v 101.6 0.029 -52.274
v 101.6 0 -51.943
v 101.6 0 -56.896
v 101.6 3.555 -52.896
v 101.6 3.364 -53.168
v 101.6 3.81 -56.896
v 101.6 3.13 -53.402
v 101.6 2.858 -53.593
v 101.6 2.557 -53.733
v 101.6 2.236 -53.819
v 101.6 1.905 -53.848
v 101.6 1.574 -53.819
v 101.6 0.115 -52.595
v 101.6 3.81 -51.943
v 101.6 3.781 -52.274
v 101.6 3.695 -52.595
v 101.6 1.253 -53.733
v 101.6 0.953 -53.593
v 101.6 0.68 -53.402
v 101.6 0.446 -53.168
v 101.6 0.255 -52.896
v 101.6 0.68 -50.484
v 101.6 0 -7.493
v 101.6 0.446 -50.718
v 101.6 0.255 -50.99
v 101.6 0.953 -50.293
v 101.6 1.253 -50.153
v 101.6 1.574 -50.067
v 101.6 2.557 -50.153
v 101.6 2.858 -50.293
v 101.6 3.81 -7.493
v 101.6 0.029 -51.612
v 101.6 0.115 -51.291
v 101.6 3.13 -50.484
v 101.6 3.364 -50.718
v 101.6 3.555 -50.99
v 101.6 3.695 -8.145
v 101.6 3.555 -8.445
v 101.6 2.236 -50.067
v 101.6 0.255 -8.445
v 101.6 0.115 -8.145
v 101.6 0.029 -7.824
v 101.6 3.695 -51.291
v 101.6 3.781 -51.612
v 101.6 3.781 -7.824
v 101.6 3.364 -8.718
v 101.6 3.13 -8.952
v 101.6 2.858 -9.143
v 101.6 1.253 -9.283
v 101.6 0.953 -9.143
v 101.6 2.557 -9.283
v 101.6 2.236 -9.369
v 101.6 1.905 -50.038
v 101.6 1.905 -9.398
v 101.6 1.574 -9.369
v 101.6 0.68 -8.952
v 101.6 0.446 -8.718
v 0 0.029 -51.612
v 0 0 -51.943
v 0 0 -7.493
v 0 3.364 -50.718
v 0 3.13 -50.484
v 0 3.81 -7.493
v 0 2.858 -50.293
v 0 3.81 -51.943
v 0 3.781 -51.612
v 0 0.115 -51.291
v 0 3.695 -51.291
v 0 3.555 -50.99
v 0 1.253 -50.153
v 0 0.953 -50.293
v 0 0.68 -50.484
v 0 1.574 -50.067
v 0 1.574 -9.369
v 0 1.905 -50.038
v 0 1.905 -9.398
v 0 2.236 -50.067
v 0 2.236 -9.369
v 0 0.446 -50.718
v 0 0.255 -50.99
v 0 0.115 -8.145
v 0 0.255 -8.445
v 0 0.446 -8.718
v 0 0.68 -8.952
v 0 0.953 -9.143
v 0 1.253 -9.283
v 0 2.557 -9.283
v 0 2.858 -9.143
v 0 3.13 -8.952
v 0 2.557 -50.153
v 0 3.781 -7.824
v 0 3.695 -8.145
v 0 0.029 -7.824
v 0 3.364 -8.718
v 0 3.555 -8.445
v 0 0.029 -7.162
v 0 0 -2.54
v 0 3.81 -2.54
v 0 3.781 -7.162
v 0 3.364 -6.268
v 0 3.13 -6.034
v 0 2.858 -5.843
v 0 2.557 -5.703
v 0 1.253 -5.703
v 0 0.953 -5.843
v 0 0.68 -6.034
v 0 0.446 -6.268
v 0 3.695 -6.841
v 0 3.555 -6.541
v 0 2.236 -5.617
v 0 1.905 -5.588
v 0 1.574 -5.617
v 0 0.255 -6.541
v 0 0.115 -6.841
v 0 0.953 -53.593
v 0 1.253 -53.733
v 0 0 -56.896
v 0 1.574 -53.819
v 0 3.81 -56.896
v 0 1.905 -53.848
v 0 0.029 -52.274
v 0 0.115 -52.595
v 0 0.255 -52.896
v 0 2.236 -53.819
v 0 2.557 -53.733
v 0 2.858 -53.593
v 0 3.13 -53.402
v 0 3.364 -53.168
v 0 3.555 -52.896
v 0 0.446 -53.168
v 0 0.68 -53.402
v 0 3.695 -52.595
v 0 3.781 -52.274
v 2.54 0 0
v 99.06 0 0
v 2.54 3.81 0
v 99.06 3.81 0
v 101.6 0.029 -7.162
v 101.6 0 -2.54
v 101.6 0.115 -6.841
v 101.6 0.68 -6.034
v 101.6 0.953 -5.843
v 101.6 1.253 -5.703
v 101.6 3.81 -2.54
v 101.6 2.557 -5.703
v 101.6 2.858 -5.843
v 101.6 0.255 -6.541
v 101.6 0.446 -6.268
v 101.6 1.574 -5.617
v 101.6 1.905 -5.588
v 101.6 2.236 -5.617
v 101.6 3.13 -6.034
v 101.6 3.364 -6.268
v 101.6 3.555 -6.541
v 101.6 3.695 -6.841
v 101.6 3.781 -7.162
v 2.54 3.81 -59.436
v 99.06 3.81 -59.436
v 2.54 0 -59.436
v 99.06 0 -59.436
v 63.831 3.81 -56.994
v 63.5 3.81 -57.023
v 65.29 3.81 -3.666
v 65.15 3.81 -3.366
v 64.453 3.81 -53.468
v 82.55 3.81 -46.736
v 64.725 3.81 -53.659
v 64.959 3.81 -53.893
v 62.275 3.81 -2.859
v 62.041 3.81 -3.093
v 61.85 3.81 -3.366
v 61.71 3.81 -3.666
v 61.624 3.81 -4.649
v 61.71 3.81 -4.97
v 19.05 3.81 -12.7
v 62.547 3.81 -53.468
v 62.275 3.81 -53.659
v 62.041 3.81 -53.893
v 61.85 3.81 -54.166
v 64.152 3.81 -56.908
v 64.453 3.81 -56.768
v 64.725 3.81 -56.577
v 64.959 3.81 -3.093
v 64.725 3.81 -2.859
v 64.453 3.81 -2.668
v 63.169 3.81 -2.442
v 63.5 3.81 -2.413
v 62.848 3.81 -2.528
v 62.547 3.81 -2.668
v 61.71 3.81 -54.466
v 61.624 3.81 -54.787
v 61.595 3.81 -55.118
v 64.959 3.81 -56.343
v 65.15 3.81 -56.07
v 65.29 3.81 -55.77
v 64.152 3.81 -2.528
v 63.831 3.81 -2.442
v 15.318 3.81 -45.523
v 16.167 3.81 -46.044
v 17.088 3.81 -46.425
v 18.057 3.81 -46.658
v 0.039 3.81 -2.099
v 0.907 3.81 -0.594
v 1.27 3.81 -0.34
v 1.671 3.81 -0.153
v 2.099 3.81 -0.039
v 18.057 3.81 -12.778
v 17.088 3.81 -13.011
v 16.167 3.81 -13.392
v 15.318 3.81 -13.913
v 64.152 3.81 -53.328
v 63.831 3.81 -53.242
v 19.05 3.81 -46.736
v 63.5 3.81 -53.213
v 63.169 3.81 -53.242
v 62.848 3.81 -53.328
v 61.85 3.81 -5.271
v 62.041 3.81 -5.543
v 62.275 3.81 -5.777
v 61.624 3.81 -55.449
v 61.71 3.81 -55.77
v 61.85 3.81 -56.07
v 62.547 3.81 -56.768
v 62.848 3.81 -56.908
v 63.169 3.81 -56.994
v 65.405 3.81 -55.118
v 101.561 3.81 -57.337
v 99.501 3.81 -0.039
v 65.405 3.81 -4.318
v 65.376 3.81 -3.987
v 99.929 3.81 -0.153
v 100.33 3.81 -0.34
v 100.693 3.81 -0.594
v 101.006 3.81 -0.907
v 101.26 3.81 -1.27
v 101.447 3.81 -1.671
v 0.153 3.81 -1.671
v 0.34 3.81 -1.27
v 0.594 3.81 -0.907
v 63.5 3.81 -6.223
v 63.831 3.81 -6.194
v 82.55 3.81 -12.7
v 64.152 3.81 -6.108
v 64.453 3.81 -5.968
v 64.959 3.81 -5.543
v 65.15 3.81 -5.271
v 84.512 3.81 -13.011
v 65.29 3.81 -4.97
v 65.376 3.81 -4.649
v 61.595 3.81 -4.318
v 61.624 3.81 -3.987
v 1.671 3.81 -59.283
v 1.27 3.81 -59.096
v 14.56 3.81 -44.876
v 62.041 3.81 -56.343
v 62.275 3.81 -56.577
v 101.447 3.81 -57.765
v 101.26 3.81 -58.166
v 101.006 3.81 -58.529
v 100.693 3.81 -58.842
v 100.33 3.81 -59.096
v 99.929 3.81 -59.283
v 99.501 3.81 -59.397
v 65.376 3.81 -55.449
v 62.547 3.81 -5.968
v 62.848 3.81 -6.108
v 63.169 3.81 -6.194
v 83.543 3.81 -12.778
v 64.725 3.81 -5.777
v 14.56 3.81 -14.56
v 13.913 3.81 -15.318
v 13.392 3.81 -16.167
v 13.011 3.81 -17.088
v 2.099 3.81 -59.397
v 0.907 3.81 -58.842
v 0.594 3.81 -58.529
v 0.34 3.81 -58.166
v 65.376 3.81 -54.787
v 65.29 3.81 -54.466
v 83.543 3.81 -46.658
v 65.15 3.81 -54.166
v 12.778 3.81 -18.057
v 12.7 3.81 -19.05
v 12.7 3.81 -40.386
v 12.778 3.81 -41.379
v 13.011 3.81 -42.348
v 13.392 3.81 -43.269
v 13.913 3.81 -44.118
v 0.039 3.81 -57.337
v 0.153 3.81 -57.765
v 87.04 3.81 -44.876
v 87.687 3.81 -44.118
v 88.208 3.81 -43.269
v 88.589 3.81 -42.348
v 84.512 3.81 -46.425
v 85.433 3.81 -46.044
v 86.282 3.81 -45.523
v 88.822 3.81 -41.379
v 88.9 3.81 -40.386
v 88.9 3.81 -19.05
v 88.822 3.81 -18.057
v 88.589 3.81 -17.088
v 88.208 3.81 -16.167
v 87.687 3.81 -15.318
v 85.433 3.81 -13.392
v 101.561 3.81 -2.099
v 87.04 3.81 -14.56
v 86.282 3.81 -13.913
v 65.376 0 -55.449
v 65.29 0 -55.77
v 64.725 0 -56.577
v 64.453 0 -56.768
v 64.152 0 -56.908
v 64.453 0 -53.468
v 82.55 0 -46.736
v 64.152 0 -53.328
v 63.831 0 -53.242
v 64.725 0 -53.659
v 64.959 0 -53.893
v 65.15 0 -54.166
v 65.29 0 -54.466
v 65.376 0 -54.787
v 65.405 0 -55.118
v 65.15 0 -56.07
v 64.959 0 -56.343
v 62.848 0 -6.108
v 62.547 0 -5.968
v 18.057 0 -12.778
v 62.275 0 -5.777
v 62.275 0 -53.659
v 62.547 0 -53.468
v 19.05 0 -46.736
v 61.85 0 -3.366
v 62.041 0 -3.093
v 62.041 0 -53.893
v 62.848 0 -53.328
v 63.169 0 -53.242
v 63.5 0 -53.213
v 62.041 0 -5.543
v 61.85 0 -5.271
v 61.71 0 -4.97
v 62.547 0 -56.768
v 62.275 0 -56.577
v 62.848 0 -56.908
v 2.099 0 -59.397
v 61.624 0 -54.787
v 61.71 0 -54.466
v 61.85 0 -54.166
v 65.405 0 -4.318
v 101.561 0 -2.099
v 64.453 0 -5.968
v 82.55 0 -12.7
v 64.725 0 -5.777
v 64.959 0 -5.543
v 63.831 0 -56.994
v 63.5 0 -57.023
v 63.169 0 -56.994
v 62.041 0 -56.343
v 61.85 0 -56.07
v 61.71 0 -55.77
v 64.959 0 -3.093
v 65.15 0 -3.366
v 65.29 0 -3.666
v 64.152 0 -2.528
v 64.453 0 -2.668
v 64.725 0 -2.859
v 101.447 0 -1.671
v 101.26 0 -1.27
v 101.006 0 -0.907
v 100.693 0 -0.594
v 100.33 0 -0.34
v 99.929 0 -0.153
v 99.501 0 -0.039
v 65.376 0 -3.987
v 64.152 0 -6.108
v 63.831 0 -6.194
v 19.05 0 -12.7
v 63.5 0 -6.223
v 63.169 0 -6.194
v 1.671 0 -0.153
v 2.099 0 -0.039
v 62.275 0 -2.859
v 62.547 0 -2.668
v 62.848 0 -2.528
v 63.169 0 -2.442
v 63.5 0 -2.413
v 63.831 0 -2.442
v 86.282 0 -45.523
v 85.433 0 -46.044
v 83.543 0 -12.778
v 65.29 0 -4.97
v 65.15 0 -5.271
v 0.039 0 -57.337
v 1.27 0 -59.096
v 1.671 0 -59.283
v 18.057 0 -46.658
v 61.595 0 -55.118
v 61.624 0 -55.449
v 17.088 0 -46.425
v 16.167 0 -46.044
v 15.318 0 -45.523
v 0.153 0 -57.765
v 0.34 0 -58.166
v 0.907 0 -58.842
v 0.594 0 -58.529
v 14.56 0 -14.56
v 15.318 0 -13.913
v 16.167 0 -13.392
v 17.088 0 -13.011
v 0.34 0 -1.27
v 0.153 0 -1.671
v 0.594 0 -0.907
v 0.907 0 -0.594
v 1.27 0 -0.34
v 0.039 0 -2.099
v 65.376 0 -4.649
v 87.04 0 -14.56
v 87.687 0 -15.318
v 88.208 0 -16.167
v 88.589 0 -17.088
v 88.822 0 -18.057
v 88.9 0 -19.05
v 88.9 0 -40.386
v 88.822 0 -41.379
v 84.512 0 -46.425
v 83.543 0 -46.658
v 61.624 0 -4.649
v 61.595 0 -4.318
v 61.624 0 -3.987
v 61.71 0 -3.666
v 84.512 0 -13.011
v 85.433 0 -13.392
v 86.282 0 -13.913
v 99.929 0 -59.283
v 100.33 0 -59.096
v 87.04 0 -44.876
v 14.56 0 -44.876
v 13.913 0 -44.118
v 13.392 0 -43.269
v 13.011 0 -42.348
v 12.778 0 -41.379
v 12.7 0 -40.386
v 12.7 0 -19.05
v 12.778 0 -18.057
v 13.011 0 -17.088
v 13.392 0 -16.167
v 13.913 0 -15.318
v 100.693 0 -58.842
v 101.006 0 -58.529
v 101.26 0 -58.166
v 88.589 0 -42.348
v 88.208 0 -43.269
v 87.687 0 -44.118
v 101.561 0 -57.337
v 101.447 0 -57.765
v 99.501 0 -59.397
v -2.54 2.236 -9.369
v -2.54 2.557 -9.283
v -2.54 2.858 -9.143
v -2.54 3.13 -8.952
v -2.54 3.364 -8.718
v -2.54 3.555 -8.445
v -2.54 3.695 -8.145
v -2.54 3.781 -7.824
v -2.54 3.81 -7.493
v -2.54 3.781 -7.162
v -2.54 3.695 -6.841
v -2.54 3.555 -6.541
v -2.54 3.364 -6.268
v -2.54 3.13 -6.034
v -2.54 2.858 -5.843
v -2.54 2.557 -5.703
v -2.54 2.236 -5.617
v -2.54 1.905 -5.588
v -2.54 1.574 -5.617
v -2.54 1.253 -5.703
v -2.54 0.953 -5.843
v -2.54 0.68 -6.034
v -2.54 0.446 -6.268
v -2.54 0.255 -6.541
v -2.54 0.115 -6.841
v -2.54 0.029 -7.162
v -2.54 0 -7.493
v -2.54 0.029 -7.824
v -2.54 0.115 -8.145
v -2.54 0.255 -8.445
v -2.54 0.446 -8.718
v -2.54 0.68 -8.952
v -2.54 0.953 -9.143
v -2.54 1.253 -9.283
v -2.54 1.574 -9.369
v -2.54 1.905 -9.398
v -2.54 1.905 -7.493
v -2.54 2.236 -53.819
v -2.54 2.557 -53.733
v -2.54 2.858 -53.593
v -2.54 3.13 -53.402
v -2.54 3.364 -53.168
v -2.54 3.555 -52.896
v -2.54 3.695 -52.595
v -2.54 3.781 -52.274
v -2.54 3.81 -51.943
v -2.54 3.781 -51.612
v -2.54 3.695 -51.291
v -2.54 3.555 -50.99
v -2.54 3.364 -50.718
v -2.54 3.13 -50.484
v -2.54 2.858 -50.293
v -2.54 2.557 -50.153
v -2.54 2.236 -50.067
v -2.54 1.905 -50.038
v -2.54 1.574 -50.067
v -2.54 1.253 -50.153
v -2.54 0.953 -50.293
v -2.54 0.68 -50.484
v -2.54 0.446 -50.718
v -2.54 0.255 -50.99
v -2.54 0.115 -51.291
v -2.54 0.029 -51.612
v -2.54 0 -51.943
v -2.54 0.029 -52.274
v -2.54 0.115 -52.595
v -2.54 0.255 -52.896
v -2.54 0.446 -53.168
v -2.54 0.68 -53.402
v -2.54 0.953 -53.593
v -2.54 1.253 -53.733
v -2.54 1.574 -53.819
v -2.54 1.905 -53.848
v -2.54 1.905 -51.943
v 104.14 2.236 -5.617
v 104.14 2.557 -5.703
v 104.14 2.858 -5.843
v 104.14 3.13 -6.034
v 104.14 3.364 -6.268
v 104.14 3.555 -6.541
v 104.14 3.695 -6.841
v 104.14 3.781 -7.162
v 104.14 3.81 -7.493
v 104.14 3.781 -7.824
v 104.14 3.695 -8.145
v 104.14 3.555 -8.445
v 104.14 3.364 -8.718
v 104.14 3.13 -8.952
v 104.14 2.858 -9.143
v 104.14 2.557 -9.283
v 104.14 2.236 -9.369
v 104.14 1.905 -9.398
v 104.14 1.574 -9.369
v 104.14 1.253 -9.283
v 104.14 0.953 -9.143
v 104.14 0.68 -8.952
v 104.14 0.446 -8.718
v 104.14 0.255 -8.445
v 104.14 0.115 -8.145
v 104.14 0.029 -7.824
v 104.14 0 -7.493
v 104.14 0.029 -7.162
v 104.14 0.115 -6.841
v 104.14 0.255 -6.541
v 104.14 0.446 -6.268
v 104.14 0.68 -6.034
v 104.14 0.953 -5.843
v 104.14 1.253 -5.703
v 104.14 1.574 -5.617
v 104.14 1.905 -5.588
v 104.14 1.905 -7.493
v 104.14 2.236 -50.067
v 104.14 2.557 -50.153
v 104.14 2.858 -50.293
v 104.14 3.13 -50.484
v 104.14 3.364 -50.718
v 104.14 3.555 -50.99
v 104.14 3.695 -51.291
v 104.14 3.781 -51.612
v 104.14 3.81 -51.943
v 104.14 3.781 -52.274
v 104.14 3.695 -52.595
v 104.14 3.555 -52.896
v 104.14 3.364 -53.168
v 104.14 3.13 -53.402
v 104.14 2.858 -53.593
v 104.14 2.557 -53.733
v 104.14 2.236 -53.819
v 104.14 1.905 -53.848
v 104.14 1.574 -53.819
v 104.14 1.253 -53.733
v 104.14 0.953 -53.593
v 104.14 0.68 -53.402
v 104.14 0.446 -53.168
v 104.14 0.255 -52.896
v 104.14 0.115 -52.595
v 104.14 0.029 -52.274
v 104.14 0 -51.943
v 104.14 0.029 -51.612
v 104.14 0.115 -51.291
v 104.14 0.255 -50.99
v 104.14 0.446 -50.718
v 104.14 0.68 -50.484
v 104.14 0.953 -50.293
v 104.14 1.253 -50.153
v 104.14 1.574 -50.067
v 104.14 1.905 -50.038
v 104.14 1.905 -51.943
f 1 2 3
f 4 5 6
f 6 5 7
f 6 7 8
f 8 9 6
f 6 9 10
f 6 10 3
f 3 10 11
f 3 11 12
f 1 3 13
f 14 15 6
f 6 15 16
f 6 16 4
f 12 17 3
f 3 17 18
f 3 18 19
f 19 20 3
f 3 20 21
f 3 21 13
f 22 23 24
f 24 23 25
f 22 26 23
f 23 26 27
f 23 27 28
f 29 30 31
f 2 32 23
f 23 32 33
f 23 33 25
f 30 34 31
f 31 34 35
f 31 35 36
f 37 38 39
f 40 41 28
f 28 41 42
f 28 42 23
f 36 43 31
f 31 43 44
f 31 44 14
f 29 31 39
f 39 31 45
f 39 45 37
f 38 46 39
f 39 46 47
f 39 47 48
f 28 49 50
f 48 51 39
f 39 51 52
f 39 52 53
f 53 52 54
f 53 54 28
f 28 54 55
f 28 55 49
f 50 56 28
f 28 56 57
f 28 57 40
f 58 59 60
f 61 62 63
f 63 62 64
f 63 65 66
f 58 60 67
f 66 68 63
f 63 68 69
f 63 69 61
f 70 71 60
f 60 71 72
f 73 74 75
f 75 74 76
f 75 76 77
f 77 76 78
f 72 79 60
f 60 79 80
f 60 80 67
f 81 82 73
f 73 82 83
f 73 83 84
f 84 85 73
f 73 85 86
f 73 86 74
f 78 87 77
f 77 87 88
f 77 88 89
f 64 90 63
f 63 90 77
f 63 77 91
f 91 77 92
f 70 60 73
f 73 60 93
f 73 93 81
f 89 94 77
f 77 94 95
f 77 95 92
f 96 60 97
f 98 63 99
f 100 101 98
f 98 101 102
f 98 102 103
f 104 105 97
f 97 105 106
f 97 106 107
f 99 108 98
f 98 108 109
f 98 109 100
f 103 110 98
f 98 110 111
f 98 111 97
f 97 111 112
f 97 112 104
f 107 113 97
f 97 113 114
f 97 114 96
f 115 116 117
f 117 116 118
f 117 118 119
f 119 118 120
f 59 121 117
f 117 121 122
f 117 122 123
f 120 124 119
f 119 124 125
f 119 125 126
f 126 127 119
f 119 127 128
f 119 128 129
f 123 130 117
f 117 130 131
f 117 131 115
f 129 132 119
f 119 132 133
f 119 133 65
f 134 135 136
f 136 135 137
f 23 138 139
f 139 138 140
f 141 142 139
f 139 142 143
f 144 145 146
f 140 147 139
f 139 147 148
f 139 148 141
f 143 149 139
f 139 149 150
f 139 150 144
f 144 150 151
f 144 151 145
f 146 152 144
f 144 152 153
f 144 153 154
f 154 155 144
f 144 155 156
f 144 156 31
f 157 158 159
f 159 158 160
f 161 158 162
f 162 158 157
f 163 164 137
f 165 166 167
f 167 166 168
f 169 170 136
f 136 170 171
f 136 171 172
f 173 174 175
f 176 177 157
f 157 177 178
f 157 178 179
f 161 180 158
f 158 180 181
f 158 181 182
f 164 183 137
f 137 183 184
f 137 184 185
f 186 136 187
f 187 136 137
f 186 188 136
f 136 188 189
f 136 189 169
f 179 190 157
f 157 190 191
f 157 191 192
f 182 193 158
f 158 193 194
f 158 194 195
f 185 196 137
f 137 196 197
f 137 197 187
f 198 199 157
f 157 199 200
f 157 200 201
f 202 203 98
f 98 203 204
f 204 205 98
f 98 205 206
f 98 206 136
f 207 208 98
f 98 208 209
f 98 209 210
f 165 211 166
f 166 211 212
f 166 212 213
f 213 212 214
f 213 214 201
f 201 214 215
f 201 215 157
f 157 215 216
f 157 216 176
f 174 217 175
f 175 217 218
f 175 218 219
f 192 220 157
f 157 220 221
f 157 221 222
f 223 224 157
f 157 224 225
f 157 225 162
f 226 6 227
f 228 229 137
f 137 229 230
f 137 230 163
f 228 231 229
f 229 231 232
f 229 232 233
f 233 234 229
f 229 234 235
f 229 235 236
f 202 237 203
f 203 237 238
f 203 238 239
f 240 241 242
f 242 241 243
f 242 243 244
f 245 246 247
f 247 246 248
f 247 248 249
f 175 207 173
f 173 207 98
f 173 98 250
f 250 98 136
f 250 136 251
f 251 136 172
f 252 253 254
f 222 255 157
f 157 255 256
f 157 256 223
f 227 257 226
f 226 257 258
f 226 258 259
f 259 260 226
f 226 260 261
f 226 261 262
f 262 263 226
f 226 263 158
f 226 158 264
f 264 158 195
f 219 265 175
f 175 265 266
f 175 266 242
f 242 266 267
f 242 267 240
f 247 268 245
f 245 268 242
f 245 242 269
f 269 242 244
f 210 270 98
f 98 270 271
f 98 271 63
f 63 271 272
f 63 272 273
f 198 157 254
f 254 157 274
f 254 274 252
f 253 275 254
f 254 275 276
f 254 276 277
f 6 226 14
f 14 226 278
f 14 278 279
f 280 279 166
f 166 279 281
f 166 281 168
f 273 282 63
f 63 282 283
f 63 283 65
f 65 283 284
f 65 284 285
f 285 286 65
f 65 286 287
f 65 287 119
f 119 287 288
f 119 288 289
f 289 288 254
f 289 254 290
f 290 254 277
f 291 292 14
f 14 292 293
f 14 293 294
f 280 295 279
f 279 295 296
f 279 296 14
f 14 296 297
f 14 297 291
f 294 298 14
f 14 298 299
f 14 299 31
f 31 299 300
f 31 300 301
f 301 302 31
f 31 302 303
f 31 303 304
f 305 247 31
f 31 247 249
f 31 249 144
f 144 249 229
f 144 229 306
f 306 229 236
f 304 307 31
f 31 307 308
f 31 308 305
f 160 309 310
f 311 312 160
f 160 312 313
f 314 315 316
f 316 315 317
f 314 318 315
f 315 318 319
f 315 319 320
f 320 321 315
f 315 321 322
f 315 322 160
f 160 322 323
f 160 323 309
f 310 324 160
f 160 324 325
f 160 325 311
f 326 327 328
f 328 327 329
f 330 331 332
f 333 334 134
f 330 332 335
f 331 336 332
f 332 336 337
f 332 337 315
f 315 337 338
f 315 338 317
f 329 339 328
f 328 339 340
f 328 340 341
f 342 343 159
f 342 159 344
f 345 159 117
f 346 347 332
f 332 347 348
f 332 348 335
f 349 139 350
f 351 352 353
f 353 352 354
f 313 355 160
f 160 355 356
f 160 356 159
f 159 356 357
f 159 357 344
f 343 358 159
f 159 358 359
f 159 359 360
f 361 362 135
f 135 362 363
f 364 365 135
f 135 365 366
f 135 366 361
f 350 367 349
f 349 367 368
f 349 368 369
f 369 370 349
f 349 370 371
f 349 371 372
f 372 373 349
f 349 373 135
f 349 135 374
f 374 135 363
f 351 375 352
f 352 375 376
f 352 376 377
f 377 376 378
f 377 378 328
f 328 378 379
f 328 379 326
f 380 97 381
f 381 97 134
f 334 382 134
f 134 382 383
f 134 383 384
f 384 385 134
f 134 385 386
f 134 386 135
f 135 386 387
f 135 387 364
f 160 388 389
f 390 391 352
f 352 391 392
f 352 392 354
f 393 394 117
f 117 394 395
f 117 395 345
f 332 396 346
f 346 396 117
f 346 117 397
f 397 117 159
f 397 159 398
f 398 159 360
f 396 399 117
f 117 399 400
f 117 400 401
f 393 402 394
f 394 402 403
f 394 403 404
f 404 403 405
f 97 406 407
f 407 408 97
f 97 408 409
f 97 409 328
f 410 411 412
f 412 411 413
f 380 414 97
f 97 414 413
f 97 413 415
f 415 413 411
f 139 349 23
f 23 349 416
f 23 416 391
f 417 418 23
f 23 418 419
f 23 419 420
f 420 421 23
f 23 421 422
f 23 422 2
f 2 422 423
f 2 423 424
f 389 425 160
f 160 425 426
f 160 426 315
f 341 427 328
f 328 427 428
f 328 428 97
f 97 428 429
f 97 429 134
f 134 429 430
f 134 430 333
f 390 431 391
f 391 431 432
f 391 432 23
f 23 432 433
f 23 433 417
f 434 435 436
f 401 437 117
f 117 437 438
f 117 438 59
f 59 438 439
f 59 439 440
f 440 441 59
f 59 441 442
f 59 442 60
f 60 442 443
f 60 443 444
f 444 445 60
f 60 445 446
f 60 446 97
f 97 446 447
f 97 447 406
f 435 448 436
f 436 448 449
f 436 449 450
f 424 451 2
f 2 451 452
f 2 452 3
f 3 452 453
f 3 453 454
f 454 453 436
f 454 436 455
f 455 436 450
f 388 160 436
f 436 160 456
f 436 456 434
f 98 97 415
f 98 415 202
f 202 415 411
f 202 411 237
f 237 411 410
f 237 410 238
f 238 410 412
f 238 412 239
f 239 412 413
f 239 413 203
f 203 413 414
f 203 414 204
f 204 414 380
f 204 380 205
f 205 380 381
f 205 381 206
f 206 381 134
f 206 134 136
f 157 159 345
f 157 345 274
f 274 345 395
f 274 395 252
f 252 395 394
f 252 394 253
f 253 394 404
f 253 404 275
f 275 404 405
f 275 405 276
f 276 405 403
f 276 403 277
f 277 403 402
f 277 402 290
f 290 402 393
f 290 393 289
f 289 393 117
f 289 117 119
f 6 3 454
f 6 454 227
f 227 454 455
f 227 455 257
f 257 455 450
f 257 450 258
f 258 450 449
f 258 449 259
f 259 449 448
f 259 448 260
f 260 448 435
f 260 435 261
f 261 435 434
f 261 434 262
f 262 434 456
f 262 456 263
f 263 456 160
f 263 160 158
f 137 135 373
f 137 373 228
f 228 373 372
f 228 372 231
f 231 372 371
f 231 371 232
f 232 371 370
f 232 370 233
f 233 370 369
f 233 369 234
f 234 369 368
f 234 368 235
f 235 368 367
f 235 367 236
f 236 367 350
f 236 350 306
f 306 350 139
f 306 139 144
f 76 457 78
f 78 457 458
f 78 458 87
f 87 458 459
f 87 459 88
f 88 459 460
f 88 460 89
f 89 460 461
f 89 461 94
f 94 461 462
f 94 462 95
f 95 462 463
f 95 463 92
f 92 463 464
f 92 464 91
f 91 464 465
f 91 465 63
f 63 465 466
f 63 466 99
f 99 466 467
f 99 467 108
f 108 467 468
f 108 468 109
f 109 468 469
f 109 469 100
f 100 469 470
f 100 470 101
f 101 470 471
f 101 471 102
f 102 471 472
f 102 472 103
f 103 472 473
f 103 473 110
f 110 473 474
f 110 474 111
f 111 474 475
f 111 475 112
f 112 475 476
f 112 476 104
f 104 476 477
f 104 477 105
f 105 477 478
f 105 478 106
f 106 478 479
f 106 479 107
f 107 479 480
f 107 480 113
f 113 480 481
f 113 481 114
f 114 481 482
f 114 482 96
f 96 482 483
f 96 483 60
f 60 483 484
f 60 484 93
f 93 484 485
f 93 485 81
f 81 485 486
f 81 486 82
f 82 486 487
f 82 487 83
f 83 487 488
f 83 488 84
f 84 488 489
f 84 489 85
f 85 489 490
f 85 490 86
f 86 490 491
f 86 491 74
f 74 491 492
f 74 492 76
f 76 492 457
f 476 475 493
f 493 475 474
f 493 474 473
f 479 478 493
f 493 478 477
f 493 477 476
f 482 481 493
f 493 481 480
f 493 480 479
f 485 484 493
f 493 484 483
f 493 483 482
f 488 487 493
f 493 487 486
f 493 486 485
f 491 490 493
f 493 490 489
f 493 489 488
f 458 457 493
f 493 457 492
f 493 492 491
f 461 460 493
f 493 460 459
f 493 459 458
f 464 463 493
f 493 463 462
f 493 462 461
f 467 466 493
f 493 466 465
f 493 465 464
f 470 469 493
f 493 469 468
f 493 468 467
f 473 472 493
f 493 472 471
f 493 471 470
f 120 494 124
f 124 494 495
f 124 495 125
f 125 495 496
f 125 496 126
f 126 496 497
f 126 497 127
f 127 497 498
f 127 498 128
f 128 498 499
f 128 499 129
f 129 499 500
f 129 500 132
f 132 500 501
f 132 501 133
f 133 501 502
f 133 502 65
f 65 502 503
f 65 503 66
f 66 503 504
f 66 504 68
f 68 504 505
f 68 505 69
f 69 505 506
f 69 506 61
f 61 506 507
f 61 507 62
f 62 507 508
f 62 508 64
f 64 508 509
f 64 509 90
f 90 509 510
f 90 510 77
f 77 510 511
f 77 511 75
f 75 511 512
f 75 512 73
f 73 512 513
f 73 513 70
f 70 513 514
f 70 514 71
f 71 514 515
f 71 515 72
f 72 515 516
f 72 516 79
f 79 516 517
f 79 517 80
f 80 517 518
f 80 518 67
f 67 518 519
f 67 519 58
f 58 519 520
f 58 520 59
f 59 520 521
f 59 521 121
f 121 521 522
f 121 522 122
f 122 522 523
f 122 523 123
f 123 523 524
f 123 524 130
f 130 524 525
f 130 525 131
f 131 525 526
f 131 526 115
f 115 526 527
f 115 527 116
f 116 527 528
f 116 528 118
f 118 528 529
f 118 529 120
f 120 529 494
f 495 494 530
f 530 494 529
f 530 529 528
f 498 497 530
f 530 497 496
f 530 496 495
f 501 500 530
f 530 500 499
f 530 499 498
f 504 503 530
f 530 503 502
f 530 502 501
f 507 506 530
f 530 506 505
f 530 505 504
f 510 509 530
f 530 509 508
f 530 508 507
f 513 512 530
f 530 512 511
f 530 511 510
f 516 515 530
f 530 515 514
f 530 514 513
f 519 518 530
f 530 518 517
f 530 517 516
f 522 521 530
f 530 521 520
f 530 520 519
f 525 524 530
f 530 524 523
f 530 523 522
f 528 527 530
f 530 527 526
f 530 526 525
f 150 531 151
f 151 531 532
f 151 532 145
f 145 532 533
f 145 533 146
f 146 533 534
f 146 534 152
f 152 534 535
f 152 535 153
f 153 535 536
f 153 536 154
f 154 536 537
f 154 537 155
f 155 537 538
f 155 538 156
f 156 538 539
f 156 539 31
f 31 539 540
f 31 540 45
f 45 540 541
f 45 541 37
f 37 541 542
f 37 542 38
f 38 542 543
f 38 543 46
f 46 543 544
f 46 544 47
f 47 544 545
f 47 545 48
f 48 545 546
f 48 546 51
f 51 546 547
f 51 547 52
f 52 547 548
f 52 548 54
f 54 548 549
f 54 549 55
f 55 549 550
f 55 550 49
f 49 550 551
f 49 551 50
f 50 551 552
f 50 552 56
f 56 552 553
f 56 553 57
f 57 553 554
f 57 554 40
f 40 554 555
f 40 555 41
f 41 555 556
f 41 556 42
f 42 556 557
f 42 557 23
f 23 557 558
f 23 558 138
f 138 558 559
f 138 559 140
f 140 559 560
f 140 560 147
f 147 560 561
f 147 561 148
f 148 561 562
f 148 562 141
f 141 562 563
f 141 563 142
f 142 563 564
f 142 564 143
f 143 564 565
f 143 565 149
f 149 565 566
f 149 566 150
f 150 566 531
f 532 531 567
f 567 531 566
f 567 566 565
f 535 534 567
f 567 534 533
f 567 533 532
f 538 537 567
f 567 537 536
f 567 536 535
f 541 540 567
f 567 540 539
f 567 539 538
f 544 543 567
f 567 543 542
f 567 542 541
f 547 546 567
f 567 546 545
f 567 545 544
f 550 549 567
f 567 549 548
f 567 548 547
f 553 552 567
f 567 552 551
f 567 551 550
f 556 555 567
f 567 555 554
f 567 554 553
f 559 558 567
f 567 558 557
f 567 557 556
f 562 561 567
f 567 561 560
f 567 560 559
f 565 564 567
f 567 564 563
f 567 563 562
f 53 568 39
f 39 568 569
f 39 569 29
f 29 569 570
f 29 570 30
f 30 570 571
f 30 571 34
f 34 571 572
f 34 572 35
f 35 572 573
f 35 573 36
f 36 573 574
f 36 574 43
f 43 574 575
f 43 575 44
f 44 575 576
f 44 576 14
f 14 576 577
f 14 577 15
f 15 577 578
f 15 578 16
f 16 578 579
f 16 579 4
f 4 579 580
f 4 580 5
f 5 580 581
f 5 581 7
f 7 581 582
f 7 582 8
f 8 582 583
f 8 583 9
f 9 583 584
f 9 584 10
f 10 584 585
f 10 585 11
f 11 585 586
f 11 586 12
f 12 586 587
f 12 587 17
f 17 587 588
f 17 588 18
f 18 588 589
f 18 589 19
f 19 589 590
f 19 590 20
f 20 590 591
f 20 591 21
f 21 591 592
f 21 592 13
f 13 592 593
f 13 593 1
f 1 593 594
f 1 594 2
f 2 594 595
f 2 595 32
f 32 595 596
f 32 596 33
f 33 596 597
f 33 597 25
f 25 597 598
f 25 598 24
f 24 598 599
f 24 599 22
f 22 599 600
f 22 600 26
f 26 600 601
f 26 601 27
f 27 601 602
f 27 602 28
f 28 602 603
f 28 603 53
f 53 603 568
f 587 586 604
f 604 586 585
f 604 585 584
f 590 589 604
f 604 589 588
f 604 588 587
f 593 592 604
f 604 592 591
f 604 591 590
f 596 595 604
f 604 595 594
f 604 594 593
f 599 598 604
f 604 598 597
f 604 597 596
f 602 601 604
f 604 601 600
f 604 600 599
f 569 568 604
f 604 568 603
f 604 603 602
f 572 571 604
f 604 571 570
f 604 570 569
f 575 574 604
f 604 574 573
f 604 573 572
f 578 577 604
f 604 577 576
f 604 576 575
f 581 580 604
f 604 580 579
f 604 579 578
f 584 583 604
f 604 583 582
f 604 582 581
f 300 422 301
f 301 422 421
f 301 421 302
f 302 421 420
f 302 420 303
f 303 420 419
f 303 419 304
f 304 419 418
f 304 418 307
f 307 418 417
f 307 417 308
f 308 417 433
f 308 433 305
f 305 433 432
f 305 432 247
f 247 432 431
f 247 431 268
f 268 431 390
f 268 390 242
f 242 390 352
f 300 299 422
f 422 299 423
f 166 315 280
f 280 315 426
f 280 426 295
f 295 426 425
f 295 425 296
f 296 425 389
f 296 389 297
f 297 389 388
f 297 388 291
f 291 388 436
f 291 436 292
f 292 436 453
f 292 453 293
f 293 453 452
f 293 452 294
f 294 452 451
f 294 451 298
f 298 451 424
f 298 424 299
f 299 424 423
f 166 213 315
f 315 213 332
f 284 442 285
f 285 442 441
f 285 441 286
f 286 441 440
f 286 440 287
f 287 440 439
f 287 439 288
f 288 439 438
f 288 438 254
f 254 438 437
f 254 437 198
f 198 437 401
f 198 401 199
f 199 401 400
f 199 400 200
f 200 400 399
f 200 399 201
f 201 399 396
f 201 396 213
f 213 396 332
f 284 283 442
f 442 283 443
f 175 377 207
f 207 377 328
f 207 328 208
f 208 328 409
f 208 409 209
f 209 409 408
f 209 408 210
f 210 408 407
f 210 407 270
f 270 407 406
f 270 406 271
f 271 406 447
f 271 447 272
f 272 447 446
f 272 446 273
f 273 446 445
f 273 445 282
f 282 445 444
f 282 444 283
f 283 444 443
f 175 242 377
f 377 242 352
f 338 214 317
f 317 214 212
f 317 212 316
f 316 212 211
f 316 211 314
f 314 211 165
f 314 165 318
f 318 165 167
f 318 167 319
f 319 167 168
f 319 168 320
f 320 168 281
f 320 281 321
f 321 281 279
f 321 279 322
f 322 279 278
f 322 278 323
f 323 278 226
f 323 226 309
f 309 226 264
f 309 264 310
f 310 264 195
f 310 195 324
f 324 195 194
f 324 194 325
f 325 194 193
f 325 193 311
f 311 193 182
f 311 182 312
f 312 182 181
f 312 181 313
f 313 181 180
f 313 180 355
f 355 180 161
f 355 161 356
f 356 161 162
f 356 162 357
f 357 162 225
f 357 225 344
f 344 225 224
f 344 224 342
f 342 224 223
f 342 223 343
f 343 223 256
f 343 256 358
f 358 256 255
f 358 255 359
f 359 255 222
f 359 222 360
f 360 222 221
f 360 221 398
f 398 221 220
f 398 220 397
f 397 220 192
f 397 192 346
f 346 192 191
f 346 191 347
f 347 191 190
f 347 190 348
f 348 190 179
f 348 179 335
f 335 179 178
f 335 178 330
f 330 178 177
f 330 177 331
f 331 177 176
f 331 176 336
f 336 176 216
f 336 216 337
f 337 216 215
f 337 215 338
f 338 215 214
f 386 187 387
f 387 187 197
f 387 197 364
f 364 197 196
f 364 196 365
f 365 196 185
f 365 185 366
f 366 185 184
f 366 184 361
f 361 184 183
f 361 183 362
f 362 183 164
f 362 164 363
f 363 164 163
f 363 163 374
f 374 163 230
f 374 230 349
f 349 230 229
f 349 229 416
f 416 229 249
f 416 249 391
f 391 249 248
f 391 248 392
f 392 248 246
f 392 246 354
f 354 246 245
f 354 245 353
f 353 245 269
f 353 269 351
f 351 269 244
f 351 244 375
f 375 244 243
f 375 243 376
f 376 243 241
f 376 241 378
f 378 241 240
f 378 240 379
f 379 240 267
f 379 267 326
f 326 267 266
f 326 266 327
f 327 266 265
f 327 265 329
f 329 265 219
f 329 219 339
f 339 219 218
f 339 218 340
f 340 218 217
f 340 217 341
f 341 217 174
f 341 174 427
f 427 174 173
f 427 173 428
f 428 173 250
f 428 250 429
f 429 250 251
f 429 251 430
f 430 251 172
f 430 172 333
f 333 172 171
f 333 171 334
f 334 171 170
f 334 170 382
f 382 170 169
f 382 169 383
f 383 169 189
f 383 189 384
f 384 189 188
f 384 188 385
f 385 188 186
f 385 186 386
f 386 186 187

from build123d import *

# Parameters (mm, degrees)
SKETCH1_W                       = 101.6
SKETCH1_H                       = 59.436
BASE_EXTRUDE_DEPTH              = 3.81
BASE_CORNER_FILLET_R            = 2.54
SKETCH3_R                       = 1.905
PEG_EXTRUDE_DEPTH               = 2.54
MATERIAL_REMOVAL_CUT_DEPTH      = 120.96788652
SKETCH5_R                       = 1.905
REMOTE_CONTROL_HOLDER_CUT_DEPTH = 120.96788652


with BuildPart() as part:
    # Sketch1 → Base Extrude (new body)
    with BuildSketch(Plane(origin=(0, 0, 0), x_dir=(1, 0, 0), z_dir=(0, 1, 0))):
        with Locations((50.8, 29.718)):
            Rectangle(SKETCH1_W, SKETCH1_H)
    extrude(amount=BASE_EXTRUDE_DEPTH)

    # Base Corner Fillet
    base_corner_fillet_edges = [part.edges().sort_by_distance(p)[0] for p in [
        (0, 1.905, -59.436),
        (101.6, 1.905, -59.436),
        (101.6, 1.905, 0),
        (0, 1.905, 0),
    ]]
    fillet(base_corner_fillet_edges, radius=BASE_CORNER_FILLET_R)

    # Sketch3 → Peg Extrude (add)
    with BuildSketch(Plane.ZY):
        with Locations(Location((-7.493, 1.905, 0), (0, 0, 270))):
            Circle(SKETCH3_R)
        with Locations(Location((-51.943, 1.905, 0), (0, 0, 180))):
            Circle(SKETCH3_R)
    peg_extrude = extrude(amount=PEG_EXTRUDE_DEPTH)

    # Peg Mirror: Peg Extrude across plane
    add(peg_extrude.mirror(Plane(origin=(50.8, 0, 0), x_dir=(0, 0, 1), z_dir=(1, 0, 0))))

    # Sketch4 → Material Removal Cut (cut, through all)
    with BuildSketch(Plane.XZ):
        with BuildLine():
            Line((19.05, -12.7), (82.55, -12.7))
            ThreePointArc((82.55, -12.7), (87.040128061, -14.559871939), (88.9, -19.05))
            Line((88.9, -19.05), (88.9, -40.386))
            ThreePointArc((88.9, -40.386), (87.040128061, -44.876128061), (82.55, -46.736))
            Line((82.55, -46.736), (19.05, -46.736))
            ThreePointArc((19.05, -46.736), (14.559871939, -44.876128061), (12.7, -40.386))
            Line((12.7, -40.386), (12.7, -19.05))
            ThreePointArc((12.7, -19.05), (14.559871939, -14.559871939), (19.05, -12.7))
        make_face()
    extrude(amount=-MATERIAL_REMOVAL_CUT_DEPTH, mode=Mode.SUBTRACT)

    # Sketch5 → Remote Control Holder Cut (cut, through all)
    with BuildSketch(Plane(origin=(0, 3.81, 0), x_dir=(1, 0, 0), z_dir=(0, 1, 0))):
        with Locations(Location((63.5, 4.318, 0), (0, 0, 270))):
            Circle(SKETCH5_R)
        with Locations(Location((63.5, 55.118, 0), (0, 0, 270))):
            Circle(SKETCH5_R)
    extrude(amount=-REMOTE_CONTROL_HOLDER_CUT_DEPTH, mode=Mode.SUBTRACT)


solid = part.part
